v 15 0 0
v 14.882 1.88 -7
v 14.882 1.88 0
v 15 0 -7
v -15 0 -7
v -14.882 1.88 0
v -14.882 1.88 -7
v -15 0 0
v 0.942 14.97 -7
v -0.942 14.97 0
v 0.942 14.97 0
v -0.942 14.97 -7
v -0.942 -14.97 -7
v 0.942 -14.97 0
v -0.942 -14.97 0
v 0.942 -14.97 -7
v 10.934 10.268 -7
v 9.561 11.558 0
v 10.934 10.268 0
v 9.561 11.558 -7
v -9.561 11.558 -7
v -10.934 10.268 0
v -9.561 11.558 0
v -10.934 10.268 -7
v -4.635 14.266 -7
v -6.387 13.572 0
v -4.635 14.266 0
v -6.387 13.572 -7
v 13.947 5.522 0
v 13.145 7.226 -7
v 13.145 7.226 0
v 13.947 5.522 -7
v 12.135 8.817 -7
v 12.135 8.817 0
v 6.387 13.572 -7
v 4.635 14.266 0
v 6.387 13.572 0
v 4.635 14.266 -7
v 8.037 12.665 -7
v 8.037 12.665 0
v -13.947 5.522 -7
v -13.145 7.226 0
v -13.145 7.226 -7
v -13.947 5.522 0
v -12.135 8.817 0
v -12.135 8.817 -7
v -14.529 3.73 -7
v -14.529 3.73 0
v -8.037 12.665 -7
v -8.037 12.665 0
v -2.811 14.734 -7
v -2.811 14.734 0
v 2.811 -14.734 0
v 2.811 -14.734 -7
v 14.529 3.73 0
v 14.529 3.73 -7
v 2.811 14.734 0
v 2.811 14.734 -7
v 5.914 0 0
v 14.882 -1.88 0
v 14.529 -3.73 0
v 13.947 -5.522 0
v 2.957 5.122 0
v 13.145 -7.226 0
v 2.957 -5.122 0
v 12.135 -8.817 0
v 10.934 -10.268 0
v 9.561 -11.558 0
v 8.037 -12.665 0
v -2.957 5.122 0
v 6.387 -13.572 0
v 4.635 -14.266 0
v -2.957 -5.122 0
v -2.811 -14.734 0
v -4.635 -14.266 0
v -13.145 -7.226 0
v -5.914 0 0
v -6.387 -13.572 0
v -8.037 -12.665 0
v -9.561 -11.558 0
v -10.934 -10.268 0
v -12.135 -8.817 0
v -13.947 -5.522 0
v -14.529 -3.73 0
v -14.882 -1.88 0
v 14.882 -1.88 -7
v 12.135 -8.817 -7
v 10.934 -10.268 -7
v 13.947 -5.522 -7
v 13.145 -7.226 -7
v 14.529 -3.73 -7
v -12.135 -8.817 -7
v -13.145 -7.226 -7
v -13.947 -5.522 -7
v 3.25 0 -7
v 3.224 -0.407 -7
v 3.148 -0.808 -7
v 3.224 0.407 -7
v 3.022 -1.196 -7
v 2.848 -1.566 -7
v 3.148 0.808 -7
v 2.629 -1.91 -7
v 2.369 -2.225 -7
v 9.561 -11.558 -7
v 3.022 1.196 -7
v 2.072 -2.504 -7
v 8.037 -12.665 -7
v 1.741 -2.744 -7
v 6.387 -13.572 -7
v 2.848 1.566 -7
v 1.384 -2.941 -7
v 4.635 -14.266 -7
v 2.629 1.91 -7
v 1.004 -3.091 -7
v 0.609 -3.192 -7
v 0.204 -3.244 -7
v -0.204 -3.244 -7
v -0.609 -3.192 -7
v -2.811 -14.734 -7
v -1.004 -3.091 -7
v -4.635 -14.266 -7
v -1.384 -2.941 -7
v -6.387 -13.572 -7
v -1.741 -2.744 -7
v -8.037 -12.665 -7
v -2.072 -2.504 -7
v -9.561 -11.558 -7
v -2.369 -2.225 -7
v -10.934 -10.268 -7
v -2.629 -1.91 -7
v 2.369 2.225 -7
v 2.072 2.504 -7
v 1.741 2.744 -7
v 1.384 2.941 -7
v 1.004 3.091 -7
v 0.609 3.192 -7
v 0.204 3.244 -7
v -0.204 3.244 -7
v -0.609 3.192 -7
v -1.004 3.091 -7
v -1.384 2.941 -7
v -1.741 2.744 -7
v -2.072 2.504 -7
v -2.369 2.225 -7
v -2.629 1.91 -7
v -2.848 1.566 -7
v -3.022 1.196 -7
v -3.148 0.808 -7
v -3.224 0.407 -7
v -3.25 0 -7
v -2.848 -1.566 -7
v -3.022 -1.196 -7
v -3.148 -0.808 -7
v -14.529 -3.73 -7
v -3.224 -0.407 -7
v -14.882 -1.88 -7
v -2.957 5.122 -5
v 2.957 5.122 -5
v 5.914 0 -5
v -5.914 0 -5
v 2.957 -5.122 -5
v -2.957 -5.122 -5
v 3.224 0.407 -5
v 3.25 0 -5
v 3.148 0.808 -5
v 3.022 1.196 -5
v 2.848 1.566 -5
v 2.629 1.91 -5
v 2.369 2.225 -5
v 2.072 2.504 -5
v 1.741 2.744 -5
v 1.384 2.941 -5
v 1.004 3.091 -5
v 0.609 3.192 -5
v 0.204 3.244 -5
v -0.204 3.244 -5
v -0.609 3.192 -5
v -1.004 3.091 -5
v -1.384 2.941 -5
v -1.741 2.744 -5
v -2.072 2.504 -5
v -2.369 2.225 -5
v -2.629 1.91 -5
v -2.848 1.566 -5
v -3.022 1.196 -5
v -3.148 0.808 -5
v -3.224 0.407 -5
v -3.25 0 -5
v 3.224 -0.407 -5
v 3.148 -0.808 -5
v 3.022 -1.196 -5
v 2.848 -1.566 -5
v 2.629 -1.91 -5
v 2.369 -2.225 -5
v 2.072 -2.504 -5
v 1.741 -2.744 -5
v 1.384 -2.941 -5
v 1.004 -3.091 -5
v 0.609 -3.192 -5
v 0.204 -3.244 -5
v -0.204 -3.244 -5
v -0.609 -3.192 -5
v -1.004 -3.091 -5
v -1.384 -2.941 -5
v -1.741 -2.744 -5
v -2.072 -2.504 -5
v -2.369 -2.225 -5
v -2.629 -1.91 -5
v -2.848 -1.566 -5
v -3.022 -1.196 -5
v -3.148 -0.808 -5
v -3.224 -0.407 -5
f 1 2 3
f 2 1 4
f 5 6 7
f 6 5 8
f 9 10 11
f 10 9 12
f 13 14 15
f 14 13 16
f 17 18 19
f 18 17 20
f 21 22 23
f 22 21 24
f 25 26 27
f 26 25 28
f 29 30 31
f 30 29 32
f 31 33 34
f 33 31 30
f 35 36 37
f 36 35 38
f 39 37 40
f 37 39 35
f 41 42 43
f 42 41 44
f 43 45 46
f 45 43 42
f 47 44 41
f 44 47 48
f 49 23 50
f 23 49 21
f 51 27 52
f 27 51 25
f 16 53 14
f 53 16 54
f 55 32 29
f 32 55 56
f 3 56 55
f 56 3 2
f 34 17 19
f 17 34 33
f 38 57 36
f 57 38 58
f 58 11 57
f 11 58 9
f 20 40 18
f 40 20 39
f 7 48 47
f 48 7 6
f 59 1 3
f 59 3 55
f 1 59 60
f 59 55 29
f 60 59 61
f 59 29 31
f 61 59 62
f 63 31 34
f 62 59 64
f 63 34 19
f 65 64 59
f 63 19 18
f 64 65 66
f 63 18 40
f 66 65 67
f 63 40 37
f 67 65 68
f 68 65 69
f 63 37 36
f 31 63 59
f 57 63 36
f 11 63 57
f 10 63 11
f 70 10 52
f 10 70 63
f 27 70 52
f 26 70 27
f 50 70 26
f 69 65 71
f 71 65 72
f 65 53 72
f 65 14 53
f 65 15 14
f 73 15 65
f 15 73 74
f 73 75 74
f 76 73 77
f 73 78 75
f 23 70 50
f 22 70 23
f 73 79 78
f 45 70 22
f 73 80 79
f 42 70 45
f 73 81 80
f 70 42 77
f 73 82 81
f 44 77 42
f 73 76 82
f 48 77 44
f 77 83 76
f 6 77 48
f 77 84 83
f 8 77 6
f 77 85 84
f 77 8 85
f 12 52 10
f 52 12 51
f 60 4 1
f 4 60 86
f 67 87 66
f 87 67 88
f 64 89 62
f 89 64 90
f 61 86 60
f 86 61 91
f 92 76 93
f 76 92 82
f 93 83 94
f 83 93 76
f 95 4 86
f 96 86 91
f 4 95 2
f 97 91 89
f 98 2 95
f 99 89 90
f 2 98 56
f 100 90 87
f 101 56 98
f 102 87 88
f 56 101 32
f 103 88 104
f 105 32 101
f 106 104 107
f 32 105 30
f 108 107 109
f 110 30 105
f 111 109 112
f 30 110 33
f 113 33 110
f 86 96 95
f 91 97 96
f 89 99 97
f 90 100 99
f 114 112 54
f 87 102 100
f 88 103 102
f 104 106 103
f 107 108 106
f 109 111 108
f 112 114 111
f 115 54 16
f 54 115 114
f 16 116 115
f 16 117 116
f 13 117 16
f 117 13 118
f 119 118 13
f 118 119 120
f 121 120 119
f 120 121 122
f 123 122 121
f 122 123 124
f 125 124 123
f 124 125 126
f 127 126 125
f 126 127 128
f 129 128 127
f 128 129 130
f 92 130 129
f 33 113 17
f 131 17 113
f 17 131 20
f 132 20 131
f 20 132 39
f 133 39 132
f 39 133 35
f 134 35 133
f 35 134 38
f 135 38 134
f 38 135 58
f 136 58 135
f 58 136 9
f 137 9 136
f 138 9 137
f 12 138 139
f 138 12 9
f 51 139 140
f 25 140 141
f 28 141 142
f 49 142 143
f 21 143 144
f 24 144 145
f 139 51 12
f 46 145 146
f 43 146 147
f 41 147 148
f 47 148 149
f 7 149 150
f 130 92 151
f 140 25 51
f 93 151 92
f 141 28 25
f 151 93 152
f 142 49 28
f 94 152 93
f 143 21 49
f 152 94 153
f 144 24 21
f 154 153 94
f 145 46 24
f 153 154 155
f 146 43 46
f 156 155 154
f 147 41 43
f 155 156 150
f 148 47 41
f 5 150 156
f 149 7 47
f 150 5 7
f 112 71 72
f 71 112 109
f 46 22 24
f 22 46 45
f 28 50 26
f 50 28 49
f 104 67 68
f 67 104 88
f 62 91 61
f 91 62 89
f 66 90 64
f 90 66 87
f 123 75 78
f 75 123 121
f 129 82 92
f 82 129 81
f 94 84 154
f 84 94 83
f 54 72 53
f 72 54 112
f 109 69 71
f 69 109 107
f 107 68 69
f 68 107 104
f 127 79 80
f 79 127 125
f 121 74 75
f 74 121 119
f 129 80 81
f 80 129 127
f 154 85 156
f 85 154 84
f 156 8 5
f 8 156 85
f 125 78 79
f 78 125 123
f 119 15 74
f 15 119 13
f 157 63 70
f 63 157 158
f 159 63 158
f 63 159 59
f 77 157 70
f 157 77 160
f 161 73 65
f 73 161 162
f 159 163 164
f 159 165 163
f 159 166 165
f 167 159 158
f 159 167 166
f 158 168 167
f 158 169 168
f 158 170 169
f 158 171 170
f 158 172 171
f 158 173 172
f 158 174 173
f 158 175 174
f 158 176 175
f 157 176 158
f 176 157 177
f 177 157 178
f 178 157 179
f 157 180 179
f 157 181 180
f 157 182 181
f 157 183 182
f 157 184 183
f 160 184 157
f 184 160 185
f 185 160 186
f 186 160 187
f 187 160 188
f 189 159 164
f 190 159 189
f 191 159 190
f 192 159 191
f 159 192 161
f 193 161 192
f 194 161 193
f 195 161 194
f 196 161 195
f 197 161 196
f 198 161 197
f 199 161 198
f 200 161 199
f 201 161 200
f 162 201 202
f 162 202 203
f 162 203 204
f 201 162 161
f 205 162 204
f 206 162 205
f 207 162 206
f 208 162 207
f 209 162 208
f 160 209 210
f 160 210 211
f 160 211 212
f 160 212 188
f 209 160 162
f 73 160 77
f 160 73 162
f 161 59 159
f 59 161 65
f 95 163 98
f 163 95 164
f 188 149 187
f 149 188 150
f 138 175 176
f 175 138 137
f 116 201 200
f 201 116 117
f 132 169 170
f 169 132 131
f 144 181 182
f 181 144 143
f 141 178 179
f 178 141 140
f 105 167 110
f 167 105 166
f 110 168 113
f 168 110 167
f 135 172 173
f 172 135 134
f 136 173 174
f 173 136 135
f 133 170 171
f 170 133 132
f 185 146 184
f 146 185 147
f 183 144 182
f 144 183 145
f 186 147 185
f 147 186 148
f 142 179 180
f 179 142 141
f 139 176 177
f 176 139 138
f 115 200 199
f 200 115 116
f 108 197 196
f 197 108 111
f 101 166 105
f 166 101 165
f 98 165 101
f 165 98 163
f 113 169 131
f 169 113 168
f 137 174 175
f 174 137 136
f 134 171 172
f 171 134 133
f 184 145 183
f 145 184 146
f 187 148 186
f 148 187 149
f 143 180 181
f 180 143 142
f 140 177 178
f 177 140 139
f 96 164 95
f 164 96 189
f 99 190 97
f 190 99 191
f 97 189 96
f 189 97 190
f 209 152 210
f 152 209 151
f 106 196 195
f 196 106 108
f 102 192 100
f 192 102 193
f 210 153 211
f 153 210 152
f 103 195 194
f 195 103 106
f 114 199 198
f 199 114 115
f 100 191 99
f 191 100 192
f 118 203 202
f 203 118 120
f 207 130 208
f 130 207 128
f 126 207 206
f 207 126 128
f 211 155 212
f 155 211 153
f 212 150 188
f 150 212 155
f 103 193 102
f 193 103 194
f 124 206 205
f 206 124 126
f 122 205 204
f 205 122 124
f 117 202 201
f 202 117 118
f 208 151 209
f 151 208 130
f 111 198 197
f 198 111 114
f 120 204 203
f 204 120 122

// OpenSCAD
$fn = 50;


difference() {
	union() {
		translate(v = [0, 0, -7.0000000000]) {
			cylinder(h = 7.0000000000, r = 15.0000000000);
		}
		translate(v = [0, 0, -5.5000000000]) {
			cylinder(h = 5.5000000000, r = 2.8750000000);
		}
	}
	union() {
		translate(v = [0, 0, 0]) {
			rotate(a = [0, 0, 0]) {
				difference() {
					union() {
						translate(v = [0, 0, -5]) {
							linear_extrude(height = 5) {
								polygon(points = [[5.9142500000, 0.0000000000], [2.9571250000, 5.1218907443], [-2.9571250000, 5.1218907443], [-5.9142500000, 0.0000000000], [-2.9571250000, -5.1218907443], [2.9571250000, -5.1218907443]]);
							}
						}
					}
					union();
				}
			}
		}
		#translate(v = [0, 0, -100.0000000000]) {
			cylinder(h = 200, r = 3.2500000000);
		}
	}
}
